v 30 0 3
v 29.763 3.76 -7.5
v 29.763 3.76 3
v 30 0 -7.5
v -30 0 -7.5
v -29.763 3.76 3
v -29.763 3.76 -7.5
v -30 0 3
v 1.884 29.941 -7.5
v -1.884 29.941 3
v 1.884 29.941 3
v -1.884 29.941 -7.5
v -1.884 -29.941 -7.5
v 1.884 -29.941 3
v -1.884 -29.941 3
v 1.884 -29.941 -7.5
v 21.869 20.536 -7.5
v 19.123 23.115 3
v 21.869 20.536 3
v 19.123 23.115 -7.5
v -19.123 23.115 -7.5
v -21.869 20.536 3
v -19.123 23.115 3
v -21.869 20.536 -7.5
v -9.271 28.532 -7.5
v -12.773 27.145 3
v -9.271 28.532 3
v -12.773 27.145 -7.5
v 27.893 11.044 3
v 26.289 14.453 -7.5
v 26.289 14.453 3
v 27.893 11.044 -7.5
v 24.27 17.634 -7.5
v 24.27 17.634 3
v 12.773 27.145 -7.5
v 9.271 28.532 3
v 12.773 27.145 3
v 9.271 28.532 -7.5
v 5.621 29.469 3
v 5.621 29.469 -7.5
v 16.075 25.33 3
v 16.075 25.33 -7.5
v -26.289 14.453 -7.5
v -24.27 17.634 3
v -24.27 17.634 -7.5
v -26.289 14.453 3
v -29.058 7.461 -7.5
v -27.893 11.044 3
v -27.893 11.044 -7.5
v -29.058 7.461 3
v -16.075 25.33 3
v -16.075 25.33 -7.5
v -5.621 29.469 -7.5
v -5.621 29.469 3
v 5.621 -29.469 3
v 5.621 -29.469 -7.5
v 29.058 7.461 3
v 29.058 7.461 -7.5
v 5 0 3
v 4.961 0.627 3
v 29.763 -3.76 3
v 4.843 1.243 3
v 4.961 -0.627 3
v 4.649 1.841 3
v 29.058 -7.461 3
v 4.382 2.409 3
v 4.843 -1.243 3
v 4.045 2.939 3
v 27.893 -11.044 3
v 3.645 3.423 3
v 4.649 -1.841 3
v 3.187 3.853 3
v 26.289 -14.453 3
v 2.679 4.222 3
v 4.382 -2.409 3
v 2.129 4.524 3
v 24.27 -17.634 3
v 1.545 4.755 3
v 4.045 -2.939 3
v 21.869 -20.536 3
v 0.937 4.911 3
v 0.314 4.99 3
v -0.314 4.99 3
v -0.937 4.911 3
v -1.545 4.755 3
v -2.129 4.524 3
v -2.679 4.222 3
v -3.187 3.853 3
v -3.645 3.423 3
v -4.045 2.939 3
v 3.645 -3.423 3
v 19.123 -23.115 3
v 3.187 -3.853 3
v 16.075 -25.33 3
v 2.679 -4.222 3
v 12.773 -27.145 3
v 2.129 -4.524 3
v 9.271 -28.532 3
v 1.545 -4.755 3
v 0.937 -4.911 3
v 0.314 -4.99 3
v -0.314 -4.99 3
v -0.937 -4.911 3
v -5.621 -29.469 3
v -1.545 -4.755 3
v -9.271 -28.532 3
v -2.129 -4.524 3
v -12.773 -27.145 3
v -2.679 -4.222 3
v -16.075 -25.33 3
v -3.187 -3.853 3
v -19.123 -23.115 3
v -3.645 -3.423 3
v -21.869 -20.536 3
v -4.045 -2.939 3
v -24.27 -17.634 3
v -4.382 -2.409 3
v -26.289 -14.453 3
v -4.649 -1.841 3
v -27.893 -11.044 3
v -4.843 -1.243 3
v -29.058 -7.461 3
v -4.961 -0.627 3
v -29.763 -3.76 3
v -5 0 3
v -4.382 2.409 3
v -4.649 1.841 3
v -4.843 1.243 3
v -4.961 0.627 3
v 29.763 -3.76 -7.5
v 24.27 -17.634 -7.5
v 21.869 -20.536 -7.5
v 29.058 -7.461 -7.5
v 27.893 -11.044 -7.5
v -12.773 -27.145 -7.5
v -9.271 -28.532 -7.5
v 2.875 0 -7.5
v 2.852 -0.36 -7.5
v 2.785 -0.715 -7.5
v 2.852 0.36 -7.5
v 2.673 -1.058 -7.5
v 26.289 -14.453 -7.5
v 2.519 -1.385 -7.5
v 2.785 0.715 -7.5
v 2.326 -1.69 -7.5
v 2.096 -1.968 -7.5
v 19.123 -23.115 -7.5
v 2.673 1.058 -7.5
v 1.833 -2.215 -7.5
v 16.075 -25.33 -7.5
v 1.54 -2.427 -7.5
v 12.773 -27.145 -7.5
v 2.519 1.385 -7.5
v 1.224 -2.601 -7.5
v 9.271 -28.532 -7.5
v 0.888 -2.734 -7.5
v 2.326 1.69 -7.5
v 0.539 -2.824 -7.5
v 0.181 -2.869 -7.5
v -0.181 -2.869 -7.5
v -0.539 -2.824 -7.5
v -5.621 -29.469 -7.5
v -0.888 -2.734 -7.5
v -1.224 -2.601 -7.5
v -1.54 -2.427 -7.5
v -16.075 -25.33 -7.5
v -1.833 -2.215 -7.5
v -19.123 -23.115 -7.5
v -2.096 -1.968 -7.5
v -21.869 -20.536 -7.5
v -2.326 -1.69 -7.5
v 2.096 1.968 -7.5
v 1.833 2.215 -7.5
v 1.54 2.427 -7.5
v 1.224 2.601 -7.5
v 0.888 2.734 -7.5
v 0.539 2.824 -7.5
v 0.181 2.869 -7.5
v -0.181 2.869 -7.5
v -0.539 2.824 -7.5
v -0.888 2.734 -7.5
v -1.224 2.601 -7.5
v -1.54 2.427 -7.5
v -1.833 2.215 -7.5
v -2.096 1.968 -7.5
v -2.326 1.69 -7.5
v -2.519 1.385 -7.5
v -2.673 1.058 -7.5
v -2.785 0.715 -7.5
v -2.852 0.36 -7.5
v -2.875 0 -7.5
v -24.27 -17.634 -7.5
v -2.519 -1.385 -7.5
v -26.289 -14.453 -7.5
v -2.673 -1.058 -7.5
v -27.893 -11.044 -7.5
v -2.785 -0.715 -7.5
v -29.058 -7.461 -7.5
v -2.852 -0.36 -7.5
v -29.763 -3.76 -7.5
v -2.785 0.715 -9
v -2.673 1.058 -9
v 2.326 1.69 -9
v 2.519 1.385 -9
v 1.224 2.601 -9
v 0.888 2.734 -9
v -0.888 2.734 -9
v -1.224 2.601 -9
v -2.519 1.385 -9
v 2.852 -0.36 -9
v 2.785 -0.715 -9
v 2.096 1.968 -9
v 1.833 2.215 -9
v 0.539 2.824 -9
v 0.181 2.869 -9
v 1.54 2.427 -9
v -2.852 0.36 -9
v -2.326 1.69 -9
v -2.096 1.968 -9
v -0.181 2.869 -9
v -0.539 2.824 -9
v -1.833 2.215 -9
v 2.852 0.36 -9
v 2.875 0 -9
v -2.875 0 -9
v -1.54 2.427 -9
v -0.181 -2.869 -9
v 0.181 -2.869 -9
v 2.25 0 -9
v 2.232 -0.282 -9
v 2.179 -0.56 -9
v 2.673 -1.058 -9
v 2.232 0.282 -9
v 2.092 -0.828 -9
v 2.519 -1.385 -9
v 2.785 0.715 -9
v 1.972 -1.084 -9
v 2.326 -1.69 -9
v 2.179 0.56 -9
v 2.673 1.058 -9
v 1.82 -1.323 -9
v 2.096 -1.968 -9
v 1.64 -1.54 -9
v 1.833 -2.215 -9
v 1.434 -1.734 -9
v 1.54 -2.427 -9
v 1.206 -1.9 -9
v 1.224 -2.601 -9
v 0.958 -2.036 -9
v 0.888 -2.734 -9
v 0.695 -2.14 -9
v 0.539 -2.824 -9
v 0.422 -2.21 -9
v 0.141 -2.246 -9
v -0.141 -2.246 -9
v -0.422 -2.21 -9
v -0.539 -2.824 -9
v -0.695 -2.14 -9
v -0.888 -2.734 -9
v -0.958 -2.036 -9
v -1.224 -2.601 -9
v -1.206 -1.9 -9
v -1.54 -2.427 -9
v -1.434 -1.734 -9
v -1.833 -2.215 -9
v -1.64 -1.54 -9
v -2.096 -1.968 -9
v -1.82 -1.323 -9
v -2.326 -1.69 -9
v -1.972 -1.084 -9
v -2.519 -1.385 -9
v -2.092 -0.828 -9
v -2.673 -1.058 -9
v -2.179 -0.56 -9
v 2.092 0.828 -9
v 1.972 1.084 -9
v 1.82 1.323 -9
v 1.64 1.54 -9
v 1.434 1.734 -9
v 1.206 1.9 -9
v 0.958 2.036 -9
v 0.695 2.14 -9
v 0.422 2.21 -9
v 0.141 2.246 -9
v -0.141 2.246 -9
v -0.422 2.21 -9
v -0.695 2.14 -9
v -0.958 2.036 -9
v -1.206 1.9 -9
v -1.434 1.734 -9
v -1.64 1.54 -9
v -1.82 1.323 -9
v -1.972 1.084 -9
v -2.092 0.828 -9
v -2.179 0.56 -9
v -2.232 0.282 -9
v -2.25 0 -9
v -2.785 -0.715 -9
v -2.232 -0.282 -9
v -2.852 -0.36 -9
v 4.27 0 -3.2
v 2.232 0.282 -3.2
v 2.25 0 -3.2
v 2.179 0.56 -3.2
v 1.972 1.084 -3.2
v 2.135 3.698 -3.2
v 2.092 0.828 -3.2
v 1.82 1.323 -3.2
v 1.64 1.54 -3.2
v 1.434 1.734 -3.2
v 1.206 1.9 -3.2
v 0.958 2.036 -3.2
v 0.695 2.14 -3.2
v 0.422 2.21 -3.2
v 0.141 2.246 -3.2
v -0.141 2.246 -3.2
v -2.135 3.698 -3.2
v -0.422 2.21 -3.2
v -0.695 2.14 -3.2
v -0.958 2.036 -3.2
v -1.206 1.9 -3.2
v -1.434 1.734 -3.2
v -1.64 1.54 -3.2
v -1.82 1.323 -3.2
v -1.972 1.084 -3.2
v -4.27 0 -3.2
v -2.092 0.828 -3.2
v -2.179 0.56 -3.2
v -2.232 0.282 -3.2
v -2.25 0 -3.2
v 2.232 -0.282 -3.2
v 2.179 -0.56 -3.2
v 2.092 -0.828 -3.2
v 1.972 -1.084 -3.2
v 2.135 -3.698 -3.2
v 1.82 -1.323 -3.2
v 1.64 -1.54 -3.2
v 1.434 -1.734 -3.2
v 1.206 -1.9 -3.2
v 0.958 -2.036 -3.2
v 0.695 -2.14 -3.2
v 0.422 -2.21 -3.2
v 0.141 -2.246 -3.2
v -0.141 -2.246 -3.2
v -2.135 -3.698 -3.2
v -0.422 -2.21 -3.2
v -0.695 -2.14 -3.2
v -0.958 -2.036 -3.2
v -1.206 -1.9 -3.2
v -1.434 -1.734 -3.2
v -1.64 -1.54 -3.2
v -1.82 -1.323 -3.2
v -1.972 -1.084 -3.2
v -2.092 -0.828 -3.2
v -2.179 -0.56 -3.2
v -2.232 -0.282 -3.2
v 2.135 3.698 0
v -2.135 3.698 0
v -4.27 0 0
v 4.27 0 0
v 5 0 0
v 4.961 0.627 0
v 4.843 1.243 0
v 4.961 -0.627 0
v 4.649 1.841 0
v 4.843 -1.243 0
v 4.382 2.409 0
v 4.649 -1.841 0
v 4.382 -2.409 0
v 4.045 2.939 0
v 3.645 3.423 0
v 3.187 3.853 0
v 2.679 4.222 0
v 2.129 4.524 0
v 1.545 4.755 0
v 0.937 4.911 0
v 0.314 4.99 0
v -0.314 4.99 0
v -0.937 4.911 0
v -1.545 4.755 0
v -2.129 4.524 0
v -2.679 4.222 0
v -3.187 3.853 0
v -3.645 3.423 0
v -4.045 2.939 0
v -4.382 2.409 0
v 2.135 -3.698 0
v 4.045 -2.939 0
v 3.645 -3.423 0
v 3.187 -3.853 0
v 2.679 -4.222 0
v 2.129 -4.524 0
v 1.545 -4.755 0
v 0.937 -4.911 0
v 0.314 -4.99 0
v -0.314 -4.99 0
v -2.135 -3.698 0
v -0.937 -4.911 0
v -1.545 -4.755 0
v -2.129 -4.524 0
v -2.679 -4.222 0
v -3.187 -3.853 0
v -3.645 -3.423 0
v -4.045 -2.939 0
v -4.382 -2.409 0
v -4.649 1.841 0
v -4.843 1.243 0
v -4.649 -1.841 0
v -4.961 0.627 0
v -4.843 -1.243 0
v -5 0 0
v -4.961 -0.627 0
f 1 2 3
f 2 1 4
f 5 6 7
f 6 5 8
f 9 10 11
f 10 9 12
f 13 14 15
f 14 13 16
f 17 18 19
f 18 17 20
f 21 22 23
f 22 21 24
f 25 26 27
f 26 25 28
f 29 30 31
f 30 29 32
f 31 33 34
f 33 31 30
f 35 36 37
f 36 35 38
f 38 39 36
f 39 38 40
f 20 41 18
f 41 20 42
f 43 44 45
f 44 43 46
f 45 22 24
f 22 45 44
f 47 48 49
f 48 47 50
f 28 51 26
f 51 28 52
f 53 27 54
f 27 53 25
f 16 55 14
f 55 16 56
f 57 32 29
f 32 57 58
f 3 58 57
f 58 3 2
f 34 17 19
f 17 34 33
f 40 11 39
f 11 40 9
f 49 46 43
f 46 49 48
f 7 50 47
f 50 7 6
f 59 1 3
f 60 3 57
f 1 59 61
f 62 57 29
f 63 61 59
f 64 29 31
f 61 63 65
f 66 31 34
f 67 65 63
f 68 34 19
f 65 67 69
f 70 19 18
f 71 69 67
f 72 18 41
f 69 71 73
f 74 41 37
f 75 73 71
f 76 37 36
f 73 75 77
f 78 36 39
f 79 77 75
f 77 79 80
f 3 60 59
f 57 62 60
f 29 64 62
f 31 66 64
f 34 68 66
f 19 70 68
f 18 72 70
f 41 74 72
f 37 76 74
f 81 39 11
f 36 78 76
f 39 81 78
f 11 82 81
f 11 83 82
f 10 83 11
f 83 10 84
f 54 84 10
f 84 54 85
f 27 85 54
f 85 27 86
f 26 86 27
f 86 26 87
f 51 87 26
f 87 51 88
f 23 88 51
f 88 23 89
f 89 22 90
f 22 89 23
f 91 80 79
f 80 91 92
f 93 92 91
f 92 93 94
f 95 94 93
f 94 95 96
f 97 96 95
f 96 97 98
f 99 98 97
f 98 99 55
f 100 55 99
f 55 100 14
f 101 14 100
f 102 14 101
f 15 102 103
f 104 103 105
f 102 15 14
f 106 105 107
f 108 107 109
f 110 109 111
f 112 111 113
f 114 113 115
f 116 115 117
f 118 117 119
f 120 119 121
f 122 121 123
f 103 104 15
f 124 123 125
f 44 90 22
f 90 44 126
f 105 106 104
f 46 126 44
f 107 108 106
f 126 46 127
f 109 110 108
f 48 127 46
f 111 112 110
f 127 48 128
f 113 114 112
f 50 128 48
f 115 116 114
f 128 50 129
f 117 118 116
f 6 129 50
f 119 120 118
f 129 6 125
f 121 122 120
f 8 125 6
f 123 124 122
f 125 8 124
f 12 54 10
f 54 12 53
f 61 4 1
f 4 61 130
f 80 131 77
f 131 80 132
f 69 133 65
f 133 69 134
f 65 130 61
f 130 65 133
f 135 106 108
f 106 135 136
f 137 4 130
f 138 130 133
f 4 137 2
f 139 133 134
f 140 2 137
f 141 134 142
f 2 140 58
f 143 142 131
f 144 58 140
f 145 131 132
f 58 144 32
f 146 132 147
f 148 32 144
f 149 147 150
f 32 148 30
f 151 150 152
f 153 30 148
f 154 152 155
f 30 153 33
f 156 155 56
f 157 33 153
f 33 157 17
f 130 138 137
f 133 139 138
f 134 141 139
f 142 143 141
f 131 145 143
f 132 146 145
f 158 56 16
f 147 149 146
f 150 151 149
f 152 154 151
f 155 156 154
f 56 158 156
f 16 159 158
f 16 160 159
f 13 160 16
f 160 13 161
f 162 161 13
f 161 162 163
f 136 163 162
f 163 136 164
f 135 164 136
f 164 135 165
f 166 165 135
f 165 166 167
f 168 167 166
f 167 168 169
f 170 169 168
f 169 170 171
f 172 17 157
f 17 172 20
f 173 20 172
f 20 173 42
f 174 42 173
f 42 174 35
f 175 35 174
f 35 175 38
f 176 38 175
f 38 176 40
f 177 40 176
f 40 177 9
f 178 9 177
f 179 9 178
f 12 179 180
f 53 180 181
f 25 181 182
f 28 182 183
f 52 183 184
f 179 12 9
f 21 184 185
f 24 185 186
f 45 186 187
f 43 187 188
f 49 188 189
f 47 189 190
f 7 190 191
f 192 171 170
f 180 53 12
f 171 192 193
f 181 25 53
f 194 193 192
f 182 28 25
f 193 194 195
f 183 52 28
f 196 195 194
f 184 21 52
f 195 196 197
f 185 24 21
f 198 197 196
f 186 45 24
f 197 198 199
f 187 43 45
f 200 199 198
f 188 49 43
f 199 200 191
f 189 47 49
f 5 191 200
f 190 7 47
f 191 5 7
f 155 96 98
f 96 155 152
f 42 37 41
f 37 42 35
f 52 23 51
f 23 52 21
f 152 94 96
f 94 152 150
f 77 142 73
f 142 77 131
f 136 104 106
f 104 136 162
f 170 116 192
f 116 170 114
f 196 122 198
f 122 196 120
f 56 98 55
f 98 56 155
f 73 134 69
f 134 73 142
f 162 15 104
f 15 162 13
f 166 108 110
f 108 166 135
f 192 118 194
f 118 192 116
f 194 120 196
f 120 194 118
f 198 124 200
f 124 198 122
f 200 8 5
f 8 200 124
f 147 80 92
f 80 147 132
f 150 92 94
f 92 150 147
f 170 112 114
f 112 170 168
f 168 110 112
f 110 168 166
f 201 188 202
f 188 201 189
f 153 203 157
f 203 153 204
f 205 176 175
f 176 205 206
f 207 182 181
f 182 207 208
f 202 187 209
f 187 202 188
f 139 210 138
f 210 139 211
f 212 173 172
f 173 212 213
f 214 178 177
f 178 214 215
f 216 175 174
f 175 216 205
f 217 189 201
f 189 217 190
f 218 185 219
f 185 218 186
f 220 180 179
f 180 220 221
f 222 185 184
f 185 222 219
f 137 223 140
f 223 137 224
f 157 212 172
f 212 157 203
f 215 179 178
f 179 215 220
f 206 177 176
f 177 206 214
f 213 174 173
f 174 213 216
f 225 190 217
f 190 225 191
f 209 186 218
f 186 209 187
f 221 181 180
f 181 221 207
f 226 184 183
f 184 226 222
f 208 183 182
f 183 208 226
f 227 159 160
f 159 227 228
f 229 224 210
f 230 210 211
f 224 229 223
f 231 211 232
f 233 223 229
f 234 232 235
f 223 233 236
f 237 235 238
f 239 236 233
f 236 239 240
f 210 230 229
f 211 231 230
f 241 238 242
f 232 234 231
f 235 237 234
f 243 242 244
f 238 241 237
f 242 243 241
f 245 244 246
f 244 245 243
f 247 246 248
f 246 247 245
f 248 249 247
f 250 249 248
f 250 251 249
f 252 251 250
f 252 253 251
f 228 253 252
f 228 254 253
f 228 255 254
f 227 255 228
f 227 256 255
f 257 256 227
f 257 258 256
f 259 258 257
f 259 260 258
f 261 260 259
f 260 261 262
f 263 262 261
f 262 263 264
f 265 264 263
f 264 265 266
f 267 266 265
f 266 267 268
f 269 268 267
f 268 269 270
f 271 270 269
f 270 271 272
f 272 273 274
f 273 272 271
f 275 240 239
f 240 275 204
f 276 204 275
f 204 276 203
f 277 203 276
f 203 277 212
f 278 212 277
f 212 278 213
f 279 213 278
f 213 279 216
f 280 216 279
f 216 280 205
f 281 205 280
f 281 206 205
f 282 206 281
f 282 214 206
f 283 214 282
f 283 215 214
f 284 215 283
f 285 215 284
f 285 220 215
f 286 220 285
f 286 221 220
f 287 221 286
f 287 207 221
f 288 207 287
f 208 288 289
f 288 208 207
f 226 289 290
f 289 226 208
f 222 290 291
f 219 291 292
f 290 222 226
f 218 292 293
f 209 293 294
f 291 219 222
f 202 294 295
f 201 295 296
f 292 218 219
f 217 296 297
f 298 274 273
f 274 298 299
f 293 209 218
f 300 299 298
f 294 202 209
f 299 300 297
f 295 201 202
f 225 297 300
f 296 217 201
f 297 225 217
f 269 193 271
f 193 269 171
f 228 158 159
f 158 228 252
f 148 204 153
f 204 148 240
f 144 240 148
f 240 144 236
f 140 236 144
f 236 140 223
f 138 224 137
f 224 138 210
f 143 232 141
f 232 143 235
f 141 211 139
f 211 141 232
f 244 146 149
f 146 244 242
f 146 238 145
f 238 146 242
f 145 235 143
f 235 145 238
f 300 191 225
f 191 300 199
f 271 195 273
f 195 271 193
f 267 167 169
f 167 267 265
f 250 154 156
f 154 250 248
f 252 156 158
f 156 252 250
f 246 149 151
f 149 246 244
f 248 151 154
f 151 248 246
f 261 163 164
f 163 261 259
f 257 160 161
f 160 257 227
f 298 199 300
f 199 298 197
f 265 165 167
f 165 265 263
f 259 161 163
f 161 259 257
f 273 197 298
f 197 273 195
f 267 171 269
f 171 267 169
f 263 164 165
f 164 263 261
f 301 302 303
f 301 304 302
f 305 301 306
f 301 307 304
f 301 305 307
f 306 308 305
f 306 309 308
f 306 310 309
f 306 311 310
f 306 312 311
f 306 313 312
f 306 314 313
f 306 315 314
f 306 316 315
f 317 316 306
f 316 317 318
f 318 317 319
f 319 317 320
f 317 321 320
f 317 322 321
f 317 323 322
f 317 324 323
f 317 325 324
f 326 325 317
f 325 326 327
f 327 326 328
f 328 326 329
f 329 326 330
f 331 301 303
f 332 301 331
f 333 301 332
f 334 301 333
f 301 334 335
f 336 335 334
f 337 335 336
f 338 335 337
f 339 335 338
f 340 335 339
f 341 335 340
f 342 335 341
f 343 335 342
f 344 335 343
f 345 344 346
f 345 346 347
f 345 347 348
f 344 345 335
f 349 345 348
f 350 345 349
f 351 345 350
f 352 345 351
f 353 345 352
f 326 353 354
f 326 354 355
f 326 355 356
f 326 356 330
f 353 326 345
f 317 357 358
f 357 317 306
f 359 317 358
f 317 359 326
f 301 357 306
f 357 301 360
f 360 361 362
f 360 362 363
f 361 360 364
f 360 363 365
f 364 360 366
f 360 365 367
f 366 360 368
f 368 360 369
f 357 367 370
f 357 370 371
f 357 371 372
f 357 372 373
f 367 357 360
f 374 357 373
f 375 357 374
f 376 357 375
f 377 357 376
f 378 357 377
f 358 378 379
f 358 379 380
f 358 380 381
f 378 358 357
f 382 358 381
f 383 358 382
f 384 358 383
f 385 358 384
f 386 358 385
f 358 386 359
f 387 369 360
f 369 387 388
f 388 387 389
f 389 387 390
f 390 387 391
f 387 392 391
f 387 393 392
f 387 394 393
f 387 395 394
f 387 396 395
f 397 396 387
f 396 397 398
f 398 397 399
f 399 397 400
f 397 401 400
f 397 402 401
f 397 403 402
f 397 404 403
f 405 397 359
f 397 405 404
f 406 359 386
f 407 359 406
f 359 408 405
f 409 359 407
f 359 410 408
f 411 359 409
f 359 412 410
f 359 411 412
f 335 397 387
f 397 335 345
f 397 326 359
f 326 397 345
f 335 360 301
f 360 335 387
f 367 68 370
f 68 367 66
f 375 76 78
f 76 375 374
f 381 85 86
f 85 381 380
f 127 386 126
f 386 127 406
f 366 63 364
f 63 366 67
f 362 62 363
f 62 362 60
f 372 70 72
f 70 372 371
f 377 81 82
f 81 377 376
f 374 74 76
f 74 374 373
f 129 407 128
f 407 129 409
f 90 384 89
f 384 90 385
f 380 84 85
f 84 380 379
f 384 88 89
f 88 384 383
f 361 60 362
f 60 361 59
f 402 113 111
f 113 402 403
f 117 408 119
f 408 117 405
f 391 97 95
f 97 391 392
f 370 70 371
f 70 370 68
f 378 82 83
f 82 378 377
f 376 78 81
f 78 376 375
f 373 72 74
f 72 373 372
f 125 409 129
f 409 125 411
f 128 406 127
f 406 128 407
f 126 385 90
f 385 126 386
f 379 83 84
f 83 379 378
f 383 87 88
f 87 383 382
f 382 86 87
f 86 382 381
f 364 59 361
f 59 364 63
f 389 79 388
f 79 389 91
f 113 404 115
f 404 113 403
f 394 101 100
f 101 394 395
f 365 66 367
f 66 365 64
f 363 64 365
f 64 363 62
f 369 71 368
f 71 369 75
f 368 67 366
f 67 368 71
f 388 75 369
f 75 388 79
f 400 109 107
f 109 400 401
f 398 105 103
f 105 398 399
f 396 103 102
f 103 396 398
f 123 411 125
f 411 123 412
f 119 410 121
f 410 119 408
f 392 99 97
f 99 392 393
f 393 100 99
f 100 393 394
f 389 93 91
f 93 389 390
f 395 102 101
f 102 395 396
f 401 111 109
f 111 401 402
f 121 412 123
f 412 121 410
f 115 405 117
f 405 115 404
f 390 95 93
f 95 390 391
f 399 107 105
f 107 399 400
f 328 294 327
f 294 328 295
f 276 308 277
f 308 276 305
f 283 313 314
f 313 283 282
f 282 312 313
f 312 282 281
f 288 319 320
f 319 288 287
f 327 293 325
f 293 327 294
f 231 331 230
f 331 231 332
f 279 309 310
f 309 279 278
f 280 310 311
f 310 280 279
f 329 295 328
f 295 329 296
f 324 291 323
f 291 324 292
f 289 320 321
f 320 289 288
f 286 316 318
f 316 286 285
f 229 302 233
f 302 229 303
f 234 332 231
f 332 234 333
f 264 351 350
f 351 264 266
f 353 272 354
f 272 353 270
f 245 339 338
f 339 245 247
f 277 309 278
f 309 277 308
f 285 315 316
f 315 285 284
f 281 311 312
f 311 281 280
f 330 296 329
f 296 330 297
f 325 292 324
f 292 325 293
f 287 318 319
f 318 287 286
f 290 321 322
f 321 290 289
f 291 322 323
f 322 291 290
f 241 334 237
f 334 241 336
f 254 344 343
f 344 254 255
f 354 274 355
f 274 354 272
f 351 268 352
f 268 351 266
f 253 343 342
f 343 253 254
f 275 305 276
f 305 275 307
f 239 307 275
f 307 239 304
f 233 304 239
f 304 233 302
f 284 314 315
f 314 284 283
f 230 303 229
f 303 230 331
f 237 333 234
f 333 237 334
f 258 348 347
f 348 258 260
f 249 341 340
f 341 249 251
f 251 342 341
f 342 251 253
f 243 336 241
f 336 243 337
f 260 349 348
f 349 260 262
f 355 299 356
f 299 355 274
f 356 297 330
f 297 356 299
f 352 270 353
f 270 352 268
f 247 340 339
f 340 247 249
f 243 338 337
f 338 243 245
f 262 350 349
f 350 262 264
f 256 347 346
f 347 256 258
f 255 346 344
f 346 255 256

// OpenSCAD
$fn = 50;

difference() {
	union() {
		translate(v = [0, 0, -7.5]) {
			cylinder(h = 10.5, r = 30.0);
		}
		#translate(v = [0, 0, -9.0]) {
			cylinder(h = 9, r = 2.875);
		}
	}
	union() {
		translate(v = [0, 0, 0]) {
			rotate(a = [0, 0, 0]) {
				difference() {
					union() {
						translate(v = [0, 0, -3.2]) {
							linear_extrude(height = 3.2) {
								polygon(points = [[4.2698, 0.0], [2.1349000000000005, 3.697755269078796], [-2.134899999999999, 3.6977552690787965], [-4.2698, 5.228996902999369e-16], [-2.134900000000002, -3.6977552690787956], [2.1348999999999974, -3.697755269078798]]);
							}
						}
					}
					union();
				}
			}
		}
		#cylinder(h = 3, r = 5.0);
		#translate(v = [0, 0, -100.0]) {
			cylinder(h = 200, r = 2.25);
		}
	}
}
